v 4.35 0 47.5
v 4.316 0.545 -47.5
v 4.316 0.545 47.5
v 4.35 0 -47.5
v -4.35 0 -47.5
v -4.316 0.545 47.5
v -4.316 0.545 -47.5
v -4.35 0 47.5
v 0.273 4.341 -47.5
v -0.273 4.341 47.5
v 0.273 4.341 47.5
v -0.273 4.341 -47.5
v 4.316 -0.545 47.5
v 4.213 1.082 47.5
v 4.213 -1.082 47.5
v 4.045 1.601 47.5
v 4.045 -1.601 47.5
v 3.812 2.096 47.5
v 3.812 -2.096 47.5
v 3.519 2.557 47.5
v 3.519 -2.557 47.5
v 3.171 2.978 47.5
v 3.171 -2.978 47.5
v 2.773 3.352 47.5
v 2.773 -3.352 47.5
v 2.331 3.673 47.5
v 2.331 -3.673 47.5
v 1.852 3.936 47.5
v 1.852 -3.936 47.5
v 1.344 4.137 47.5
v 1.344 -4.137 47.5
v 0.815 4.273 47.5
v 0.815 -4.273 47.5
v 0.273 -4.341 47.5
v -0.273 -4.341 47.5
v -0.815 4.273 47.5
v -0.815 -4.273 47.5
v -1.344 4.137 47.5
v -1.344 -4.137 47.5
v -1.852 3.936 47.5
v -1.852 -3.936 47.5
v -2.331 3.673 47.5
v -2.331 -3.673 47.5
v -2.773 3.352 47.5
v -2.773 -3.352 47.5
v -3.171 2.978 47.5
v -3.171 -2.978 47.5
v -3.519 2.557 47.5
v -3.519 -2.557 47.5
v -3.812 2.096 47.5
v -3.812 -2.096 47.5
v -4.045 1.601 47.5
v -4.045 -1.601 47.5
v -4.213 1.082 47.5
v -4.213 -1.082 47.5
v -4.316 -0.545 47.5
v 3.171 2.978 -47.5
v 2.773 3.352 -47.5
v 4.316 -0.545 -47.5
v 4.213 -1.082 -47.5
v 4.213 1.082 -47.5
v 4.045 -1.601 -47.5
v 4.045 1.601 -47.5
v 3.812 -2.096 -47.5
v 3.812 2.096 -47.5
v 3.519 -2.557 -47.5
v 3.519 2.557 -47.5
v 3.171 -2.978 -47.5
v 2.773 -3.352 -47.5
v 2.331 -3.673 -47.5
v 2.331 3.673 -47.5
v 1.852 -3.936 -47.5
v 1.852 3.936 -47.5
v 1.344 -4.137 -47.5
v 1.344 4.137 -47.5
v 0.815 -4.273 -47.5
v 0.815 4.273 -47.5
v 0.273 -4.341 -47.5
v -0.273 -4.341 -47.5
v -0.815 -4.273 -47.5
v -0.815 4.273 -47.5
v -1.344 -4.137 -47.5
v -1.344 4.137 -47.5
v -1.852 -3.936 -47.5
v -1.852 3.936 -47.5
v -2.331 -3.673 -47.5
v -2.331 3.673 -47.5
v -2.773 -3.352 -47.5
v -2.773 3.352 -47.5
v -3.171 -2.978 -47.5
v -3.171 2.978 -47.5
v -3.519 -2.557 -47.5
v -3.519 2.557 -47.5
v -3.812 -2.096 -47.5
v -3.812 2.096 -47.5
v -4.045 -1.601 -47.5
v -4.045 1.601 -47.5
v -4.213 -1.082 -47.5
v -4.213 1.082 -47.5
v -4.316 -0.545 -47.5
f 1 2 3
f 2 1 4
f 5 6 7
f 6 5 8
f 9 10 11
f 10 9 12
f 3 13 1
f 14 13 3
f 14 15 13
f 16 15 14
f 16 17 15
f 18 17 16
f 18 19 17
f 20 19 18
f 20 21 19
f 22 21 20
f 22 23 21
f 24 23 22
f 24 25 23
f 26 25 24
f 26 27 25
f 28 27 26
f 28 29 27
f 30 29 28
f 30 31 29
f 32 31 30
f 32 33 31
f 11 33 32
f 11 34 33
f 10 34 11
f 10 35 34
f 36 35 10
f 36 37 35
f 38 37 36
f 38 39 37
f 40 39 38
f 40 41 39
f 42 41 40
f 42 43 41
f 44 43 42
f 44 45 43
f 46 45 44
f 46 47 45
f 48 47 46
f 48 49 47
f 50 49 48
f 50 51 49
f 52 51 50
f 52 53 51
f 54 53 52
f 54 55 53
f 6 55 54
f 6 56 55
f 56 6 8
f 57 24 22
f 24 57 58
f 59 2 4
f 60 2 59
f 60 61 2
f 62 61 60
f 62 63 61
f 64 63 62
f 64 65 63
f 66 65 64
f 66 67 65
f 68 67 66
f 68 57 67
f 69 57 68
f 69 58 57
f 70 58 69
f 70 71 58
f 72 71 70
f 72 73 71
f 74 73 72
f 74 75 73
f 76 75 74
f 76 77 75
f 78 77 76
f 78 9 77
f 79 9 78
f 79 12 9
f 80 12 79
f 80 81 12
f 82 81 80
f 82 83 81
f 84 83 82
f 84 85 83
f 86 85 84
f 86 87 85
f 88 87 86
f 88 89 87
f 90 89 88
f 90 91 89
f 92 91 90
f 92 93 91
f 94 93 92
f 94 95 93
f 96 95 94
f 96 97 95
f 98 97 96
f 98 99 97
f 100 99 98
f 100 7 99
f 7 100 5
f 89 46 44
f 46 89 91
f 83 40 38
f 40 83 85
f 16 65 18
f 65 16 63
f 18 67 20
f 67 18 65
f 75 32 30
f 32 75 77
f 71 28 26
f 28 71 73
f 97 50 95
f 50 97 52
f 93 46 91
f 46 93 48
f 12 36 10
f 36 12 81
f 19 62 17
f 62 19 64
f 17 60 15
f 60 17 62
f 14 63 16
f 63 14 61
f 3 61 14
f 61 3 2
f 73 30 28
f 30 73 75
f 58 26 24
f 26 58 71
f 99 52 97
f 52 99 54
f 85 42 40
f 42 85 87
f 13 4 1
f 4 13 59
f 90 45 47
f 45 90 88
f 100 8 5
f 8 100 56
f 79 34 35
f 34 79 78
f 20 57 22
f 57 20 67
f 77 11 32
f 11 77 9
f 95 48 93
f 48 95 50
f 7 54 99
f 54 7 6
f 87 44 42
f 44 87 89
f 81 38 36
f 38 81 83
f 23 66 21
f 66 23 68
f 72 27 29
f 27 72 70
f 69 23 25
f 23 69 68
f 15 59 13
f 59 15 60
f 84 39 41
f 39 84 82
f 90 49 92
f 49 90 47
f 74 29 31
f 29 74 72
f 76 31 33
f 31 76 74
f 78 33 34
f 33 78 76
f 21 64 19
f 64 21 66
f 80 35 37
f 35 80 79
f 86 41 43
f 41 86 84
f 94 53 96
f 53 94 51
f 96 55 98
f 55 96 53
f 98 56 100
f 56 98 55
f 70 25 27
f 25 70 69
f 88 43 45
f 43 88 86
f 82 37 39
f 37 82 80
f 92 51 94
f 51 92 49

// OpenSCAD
$fn = 50;


difference() {
	union() {
		translate(v = [0, 0, -47.5000000000]) {
			cylinder(h = 95, r = 4.3500000000);
		}
	}
	union() {
		translate(v = [0, 0, -100.0000000000]) {
			cylinder(h = 200, r = 0);
		}
	}
}
